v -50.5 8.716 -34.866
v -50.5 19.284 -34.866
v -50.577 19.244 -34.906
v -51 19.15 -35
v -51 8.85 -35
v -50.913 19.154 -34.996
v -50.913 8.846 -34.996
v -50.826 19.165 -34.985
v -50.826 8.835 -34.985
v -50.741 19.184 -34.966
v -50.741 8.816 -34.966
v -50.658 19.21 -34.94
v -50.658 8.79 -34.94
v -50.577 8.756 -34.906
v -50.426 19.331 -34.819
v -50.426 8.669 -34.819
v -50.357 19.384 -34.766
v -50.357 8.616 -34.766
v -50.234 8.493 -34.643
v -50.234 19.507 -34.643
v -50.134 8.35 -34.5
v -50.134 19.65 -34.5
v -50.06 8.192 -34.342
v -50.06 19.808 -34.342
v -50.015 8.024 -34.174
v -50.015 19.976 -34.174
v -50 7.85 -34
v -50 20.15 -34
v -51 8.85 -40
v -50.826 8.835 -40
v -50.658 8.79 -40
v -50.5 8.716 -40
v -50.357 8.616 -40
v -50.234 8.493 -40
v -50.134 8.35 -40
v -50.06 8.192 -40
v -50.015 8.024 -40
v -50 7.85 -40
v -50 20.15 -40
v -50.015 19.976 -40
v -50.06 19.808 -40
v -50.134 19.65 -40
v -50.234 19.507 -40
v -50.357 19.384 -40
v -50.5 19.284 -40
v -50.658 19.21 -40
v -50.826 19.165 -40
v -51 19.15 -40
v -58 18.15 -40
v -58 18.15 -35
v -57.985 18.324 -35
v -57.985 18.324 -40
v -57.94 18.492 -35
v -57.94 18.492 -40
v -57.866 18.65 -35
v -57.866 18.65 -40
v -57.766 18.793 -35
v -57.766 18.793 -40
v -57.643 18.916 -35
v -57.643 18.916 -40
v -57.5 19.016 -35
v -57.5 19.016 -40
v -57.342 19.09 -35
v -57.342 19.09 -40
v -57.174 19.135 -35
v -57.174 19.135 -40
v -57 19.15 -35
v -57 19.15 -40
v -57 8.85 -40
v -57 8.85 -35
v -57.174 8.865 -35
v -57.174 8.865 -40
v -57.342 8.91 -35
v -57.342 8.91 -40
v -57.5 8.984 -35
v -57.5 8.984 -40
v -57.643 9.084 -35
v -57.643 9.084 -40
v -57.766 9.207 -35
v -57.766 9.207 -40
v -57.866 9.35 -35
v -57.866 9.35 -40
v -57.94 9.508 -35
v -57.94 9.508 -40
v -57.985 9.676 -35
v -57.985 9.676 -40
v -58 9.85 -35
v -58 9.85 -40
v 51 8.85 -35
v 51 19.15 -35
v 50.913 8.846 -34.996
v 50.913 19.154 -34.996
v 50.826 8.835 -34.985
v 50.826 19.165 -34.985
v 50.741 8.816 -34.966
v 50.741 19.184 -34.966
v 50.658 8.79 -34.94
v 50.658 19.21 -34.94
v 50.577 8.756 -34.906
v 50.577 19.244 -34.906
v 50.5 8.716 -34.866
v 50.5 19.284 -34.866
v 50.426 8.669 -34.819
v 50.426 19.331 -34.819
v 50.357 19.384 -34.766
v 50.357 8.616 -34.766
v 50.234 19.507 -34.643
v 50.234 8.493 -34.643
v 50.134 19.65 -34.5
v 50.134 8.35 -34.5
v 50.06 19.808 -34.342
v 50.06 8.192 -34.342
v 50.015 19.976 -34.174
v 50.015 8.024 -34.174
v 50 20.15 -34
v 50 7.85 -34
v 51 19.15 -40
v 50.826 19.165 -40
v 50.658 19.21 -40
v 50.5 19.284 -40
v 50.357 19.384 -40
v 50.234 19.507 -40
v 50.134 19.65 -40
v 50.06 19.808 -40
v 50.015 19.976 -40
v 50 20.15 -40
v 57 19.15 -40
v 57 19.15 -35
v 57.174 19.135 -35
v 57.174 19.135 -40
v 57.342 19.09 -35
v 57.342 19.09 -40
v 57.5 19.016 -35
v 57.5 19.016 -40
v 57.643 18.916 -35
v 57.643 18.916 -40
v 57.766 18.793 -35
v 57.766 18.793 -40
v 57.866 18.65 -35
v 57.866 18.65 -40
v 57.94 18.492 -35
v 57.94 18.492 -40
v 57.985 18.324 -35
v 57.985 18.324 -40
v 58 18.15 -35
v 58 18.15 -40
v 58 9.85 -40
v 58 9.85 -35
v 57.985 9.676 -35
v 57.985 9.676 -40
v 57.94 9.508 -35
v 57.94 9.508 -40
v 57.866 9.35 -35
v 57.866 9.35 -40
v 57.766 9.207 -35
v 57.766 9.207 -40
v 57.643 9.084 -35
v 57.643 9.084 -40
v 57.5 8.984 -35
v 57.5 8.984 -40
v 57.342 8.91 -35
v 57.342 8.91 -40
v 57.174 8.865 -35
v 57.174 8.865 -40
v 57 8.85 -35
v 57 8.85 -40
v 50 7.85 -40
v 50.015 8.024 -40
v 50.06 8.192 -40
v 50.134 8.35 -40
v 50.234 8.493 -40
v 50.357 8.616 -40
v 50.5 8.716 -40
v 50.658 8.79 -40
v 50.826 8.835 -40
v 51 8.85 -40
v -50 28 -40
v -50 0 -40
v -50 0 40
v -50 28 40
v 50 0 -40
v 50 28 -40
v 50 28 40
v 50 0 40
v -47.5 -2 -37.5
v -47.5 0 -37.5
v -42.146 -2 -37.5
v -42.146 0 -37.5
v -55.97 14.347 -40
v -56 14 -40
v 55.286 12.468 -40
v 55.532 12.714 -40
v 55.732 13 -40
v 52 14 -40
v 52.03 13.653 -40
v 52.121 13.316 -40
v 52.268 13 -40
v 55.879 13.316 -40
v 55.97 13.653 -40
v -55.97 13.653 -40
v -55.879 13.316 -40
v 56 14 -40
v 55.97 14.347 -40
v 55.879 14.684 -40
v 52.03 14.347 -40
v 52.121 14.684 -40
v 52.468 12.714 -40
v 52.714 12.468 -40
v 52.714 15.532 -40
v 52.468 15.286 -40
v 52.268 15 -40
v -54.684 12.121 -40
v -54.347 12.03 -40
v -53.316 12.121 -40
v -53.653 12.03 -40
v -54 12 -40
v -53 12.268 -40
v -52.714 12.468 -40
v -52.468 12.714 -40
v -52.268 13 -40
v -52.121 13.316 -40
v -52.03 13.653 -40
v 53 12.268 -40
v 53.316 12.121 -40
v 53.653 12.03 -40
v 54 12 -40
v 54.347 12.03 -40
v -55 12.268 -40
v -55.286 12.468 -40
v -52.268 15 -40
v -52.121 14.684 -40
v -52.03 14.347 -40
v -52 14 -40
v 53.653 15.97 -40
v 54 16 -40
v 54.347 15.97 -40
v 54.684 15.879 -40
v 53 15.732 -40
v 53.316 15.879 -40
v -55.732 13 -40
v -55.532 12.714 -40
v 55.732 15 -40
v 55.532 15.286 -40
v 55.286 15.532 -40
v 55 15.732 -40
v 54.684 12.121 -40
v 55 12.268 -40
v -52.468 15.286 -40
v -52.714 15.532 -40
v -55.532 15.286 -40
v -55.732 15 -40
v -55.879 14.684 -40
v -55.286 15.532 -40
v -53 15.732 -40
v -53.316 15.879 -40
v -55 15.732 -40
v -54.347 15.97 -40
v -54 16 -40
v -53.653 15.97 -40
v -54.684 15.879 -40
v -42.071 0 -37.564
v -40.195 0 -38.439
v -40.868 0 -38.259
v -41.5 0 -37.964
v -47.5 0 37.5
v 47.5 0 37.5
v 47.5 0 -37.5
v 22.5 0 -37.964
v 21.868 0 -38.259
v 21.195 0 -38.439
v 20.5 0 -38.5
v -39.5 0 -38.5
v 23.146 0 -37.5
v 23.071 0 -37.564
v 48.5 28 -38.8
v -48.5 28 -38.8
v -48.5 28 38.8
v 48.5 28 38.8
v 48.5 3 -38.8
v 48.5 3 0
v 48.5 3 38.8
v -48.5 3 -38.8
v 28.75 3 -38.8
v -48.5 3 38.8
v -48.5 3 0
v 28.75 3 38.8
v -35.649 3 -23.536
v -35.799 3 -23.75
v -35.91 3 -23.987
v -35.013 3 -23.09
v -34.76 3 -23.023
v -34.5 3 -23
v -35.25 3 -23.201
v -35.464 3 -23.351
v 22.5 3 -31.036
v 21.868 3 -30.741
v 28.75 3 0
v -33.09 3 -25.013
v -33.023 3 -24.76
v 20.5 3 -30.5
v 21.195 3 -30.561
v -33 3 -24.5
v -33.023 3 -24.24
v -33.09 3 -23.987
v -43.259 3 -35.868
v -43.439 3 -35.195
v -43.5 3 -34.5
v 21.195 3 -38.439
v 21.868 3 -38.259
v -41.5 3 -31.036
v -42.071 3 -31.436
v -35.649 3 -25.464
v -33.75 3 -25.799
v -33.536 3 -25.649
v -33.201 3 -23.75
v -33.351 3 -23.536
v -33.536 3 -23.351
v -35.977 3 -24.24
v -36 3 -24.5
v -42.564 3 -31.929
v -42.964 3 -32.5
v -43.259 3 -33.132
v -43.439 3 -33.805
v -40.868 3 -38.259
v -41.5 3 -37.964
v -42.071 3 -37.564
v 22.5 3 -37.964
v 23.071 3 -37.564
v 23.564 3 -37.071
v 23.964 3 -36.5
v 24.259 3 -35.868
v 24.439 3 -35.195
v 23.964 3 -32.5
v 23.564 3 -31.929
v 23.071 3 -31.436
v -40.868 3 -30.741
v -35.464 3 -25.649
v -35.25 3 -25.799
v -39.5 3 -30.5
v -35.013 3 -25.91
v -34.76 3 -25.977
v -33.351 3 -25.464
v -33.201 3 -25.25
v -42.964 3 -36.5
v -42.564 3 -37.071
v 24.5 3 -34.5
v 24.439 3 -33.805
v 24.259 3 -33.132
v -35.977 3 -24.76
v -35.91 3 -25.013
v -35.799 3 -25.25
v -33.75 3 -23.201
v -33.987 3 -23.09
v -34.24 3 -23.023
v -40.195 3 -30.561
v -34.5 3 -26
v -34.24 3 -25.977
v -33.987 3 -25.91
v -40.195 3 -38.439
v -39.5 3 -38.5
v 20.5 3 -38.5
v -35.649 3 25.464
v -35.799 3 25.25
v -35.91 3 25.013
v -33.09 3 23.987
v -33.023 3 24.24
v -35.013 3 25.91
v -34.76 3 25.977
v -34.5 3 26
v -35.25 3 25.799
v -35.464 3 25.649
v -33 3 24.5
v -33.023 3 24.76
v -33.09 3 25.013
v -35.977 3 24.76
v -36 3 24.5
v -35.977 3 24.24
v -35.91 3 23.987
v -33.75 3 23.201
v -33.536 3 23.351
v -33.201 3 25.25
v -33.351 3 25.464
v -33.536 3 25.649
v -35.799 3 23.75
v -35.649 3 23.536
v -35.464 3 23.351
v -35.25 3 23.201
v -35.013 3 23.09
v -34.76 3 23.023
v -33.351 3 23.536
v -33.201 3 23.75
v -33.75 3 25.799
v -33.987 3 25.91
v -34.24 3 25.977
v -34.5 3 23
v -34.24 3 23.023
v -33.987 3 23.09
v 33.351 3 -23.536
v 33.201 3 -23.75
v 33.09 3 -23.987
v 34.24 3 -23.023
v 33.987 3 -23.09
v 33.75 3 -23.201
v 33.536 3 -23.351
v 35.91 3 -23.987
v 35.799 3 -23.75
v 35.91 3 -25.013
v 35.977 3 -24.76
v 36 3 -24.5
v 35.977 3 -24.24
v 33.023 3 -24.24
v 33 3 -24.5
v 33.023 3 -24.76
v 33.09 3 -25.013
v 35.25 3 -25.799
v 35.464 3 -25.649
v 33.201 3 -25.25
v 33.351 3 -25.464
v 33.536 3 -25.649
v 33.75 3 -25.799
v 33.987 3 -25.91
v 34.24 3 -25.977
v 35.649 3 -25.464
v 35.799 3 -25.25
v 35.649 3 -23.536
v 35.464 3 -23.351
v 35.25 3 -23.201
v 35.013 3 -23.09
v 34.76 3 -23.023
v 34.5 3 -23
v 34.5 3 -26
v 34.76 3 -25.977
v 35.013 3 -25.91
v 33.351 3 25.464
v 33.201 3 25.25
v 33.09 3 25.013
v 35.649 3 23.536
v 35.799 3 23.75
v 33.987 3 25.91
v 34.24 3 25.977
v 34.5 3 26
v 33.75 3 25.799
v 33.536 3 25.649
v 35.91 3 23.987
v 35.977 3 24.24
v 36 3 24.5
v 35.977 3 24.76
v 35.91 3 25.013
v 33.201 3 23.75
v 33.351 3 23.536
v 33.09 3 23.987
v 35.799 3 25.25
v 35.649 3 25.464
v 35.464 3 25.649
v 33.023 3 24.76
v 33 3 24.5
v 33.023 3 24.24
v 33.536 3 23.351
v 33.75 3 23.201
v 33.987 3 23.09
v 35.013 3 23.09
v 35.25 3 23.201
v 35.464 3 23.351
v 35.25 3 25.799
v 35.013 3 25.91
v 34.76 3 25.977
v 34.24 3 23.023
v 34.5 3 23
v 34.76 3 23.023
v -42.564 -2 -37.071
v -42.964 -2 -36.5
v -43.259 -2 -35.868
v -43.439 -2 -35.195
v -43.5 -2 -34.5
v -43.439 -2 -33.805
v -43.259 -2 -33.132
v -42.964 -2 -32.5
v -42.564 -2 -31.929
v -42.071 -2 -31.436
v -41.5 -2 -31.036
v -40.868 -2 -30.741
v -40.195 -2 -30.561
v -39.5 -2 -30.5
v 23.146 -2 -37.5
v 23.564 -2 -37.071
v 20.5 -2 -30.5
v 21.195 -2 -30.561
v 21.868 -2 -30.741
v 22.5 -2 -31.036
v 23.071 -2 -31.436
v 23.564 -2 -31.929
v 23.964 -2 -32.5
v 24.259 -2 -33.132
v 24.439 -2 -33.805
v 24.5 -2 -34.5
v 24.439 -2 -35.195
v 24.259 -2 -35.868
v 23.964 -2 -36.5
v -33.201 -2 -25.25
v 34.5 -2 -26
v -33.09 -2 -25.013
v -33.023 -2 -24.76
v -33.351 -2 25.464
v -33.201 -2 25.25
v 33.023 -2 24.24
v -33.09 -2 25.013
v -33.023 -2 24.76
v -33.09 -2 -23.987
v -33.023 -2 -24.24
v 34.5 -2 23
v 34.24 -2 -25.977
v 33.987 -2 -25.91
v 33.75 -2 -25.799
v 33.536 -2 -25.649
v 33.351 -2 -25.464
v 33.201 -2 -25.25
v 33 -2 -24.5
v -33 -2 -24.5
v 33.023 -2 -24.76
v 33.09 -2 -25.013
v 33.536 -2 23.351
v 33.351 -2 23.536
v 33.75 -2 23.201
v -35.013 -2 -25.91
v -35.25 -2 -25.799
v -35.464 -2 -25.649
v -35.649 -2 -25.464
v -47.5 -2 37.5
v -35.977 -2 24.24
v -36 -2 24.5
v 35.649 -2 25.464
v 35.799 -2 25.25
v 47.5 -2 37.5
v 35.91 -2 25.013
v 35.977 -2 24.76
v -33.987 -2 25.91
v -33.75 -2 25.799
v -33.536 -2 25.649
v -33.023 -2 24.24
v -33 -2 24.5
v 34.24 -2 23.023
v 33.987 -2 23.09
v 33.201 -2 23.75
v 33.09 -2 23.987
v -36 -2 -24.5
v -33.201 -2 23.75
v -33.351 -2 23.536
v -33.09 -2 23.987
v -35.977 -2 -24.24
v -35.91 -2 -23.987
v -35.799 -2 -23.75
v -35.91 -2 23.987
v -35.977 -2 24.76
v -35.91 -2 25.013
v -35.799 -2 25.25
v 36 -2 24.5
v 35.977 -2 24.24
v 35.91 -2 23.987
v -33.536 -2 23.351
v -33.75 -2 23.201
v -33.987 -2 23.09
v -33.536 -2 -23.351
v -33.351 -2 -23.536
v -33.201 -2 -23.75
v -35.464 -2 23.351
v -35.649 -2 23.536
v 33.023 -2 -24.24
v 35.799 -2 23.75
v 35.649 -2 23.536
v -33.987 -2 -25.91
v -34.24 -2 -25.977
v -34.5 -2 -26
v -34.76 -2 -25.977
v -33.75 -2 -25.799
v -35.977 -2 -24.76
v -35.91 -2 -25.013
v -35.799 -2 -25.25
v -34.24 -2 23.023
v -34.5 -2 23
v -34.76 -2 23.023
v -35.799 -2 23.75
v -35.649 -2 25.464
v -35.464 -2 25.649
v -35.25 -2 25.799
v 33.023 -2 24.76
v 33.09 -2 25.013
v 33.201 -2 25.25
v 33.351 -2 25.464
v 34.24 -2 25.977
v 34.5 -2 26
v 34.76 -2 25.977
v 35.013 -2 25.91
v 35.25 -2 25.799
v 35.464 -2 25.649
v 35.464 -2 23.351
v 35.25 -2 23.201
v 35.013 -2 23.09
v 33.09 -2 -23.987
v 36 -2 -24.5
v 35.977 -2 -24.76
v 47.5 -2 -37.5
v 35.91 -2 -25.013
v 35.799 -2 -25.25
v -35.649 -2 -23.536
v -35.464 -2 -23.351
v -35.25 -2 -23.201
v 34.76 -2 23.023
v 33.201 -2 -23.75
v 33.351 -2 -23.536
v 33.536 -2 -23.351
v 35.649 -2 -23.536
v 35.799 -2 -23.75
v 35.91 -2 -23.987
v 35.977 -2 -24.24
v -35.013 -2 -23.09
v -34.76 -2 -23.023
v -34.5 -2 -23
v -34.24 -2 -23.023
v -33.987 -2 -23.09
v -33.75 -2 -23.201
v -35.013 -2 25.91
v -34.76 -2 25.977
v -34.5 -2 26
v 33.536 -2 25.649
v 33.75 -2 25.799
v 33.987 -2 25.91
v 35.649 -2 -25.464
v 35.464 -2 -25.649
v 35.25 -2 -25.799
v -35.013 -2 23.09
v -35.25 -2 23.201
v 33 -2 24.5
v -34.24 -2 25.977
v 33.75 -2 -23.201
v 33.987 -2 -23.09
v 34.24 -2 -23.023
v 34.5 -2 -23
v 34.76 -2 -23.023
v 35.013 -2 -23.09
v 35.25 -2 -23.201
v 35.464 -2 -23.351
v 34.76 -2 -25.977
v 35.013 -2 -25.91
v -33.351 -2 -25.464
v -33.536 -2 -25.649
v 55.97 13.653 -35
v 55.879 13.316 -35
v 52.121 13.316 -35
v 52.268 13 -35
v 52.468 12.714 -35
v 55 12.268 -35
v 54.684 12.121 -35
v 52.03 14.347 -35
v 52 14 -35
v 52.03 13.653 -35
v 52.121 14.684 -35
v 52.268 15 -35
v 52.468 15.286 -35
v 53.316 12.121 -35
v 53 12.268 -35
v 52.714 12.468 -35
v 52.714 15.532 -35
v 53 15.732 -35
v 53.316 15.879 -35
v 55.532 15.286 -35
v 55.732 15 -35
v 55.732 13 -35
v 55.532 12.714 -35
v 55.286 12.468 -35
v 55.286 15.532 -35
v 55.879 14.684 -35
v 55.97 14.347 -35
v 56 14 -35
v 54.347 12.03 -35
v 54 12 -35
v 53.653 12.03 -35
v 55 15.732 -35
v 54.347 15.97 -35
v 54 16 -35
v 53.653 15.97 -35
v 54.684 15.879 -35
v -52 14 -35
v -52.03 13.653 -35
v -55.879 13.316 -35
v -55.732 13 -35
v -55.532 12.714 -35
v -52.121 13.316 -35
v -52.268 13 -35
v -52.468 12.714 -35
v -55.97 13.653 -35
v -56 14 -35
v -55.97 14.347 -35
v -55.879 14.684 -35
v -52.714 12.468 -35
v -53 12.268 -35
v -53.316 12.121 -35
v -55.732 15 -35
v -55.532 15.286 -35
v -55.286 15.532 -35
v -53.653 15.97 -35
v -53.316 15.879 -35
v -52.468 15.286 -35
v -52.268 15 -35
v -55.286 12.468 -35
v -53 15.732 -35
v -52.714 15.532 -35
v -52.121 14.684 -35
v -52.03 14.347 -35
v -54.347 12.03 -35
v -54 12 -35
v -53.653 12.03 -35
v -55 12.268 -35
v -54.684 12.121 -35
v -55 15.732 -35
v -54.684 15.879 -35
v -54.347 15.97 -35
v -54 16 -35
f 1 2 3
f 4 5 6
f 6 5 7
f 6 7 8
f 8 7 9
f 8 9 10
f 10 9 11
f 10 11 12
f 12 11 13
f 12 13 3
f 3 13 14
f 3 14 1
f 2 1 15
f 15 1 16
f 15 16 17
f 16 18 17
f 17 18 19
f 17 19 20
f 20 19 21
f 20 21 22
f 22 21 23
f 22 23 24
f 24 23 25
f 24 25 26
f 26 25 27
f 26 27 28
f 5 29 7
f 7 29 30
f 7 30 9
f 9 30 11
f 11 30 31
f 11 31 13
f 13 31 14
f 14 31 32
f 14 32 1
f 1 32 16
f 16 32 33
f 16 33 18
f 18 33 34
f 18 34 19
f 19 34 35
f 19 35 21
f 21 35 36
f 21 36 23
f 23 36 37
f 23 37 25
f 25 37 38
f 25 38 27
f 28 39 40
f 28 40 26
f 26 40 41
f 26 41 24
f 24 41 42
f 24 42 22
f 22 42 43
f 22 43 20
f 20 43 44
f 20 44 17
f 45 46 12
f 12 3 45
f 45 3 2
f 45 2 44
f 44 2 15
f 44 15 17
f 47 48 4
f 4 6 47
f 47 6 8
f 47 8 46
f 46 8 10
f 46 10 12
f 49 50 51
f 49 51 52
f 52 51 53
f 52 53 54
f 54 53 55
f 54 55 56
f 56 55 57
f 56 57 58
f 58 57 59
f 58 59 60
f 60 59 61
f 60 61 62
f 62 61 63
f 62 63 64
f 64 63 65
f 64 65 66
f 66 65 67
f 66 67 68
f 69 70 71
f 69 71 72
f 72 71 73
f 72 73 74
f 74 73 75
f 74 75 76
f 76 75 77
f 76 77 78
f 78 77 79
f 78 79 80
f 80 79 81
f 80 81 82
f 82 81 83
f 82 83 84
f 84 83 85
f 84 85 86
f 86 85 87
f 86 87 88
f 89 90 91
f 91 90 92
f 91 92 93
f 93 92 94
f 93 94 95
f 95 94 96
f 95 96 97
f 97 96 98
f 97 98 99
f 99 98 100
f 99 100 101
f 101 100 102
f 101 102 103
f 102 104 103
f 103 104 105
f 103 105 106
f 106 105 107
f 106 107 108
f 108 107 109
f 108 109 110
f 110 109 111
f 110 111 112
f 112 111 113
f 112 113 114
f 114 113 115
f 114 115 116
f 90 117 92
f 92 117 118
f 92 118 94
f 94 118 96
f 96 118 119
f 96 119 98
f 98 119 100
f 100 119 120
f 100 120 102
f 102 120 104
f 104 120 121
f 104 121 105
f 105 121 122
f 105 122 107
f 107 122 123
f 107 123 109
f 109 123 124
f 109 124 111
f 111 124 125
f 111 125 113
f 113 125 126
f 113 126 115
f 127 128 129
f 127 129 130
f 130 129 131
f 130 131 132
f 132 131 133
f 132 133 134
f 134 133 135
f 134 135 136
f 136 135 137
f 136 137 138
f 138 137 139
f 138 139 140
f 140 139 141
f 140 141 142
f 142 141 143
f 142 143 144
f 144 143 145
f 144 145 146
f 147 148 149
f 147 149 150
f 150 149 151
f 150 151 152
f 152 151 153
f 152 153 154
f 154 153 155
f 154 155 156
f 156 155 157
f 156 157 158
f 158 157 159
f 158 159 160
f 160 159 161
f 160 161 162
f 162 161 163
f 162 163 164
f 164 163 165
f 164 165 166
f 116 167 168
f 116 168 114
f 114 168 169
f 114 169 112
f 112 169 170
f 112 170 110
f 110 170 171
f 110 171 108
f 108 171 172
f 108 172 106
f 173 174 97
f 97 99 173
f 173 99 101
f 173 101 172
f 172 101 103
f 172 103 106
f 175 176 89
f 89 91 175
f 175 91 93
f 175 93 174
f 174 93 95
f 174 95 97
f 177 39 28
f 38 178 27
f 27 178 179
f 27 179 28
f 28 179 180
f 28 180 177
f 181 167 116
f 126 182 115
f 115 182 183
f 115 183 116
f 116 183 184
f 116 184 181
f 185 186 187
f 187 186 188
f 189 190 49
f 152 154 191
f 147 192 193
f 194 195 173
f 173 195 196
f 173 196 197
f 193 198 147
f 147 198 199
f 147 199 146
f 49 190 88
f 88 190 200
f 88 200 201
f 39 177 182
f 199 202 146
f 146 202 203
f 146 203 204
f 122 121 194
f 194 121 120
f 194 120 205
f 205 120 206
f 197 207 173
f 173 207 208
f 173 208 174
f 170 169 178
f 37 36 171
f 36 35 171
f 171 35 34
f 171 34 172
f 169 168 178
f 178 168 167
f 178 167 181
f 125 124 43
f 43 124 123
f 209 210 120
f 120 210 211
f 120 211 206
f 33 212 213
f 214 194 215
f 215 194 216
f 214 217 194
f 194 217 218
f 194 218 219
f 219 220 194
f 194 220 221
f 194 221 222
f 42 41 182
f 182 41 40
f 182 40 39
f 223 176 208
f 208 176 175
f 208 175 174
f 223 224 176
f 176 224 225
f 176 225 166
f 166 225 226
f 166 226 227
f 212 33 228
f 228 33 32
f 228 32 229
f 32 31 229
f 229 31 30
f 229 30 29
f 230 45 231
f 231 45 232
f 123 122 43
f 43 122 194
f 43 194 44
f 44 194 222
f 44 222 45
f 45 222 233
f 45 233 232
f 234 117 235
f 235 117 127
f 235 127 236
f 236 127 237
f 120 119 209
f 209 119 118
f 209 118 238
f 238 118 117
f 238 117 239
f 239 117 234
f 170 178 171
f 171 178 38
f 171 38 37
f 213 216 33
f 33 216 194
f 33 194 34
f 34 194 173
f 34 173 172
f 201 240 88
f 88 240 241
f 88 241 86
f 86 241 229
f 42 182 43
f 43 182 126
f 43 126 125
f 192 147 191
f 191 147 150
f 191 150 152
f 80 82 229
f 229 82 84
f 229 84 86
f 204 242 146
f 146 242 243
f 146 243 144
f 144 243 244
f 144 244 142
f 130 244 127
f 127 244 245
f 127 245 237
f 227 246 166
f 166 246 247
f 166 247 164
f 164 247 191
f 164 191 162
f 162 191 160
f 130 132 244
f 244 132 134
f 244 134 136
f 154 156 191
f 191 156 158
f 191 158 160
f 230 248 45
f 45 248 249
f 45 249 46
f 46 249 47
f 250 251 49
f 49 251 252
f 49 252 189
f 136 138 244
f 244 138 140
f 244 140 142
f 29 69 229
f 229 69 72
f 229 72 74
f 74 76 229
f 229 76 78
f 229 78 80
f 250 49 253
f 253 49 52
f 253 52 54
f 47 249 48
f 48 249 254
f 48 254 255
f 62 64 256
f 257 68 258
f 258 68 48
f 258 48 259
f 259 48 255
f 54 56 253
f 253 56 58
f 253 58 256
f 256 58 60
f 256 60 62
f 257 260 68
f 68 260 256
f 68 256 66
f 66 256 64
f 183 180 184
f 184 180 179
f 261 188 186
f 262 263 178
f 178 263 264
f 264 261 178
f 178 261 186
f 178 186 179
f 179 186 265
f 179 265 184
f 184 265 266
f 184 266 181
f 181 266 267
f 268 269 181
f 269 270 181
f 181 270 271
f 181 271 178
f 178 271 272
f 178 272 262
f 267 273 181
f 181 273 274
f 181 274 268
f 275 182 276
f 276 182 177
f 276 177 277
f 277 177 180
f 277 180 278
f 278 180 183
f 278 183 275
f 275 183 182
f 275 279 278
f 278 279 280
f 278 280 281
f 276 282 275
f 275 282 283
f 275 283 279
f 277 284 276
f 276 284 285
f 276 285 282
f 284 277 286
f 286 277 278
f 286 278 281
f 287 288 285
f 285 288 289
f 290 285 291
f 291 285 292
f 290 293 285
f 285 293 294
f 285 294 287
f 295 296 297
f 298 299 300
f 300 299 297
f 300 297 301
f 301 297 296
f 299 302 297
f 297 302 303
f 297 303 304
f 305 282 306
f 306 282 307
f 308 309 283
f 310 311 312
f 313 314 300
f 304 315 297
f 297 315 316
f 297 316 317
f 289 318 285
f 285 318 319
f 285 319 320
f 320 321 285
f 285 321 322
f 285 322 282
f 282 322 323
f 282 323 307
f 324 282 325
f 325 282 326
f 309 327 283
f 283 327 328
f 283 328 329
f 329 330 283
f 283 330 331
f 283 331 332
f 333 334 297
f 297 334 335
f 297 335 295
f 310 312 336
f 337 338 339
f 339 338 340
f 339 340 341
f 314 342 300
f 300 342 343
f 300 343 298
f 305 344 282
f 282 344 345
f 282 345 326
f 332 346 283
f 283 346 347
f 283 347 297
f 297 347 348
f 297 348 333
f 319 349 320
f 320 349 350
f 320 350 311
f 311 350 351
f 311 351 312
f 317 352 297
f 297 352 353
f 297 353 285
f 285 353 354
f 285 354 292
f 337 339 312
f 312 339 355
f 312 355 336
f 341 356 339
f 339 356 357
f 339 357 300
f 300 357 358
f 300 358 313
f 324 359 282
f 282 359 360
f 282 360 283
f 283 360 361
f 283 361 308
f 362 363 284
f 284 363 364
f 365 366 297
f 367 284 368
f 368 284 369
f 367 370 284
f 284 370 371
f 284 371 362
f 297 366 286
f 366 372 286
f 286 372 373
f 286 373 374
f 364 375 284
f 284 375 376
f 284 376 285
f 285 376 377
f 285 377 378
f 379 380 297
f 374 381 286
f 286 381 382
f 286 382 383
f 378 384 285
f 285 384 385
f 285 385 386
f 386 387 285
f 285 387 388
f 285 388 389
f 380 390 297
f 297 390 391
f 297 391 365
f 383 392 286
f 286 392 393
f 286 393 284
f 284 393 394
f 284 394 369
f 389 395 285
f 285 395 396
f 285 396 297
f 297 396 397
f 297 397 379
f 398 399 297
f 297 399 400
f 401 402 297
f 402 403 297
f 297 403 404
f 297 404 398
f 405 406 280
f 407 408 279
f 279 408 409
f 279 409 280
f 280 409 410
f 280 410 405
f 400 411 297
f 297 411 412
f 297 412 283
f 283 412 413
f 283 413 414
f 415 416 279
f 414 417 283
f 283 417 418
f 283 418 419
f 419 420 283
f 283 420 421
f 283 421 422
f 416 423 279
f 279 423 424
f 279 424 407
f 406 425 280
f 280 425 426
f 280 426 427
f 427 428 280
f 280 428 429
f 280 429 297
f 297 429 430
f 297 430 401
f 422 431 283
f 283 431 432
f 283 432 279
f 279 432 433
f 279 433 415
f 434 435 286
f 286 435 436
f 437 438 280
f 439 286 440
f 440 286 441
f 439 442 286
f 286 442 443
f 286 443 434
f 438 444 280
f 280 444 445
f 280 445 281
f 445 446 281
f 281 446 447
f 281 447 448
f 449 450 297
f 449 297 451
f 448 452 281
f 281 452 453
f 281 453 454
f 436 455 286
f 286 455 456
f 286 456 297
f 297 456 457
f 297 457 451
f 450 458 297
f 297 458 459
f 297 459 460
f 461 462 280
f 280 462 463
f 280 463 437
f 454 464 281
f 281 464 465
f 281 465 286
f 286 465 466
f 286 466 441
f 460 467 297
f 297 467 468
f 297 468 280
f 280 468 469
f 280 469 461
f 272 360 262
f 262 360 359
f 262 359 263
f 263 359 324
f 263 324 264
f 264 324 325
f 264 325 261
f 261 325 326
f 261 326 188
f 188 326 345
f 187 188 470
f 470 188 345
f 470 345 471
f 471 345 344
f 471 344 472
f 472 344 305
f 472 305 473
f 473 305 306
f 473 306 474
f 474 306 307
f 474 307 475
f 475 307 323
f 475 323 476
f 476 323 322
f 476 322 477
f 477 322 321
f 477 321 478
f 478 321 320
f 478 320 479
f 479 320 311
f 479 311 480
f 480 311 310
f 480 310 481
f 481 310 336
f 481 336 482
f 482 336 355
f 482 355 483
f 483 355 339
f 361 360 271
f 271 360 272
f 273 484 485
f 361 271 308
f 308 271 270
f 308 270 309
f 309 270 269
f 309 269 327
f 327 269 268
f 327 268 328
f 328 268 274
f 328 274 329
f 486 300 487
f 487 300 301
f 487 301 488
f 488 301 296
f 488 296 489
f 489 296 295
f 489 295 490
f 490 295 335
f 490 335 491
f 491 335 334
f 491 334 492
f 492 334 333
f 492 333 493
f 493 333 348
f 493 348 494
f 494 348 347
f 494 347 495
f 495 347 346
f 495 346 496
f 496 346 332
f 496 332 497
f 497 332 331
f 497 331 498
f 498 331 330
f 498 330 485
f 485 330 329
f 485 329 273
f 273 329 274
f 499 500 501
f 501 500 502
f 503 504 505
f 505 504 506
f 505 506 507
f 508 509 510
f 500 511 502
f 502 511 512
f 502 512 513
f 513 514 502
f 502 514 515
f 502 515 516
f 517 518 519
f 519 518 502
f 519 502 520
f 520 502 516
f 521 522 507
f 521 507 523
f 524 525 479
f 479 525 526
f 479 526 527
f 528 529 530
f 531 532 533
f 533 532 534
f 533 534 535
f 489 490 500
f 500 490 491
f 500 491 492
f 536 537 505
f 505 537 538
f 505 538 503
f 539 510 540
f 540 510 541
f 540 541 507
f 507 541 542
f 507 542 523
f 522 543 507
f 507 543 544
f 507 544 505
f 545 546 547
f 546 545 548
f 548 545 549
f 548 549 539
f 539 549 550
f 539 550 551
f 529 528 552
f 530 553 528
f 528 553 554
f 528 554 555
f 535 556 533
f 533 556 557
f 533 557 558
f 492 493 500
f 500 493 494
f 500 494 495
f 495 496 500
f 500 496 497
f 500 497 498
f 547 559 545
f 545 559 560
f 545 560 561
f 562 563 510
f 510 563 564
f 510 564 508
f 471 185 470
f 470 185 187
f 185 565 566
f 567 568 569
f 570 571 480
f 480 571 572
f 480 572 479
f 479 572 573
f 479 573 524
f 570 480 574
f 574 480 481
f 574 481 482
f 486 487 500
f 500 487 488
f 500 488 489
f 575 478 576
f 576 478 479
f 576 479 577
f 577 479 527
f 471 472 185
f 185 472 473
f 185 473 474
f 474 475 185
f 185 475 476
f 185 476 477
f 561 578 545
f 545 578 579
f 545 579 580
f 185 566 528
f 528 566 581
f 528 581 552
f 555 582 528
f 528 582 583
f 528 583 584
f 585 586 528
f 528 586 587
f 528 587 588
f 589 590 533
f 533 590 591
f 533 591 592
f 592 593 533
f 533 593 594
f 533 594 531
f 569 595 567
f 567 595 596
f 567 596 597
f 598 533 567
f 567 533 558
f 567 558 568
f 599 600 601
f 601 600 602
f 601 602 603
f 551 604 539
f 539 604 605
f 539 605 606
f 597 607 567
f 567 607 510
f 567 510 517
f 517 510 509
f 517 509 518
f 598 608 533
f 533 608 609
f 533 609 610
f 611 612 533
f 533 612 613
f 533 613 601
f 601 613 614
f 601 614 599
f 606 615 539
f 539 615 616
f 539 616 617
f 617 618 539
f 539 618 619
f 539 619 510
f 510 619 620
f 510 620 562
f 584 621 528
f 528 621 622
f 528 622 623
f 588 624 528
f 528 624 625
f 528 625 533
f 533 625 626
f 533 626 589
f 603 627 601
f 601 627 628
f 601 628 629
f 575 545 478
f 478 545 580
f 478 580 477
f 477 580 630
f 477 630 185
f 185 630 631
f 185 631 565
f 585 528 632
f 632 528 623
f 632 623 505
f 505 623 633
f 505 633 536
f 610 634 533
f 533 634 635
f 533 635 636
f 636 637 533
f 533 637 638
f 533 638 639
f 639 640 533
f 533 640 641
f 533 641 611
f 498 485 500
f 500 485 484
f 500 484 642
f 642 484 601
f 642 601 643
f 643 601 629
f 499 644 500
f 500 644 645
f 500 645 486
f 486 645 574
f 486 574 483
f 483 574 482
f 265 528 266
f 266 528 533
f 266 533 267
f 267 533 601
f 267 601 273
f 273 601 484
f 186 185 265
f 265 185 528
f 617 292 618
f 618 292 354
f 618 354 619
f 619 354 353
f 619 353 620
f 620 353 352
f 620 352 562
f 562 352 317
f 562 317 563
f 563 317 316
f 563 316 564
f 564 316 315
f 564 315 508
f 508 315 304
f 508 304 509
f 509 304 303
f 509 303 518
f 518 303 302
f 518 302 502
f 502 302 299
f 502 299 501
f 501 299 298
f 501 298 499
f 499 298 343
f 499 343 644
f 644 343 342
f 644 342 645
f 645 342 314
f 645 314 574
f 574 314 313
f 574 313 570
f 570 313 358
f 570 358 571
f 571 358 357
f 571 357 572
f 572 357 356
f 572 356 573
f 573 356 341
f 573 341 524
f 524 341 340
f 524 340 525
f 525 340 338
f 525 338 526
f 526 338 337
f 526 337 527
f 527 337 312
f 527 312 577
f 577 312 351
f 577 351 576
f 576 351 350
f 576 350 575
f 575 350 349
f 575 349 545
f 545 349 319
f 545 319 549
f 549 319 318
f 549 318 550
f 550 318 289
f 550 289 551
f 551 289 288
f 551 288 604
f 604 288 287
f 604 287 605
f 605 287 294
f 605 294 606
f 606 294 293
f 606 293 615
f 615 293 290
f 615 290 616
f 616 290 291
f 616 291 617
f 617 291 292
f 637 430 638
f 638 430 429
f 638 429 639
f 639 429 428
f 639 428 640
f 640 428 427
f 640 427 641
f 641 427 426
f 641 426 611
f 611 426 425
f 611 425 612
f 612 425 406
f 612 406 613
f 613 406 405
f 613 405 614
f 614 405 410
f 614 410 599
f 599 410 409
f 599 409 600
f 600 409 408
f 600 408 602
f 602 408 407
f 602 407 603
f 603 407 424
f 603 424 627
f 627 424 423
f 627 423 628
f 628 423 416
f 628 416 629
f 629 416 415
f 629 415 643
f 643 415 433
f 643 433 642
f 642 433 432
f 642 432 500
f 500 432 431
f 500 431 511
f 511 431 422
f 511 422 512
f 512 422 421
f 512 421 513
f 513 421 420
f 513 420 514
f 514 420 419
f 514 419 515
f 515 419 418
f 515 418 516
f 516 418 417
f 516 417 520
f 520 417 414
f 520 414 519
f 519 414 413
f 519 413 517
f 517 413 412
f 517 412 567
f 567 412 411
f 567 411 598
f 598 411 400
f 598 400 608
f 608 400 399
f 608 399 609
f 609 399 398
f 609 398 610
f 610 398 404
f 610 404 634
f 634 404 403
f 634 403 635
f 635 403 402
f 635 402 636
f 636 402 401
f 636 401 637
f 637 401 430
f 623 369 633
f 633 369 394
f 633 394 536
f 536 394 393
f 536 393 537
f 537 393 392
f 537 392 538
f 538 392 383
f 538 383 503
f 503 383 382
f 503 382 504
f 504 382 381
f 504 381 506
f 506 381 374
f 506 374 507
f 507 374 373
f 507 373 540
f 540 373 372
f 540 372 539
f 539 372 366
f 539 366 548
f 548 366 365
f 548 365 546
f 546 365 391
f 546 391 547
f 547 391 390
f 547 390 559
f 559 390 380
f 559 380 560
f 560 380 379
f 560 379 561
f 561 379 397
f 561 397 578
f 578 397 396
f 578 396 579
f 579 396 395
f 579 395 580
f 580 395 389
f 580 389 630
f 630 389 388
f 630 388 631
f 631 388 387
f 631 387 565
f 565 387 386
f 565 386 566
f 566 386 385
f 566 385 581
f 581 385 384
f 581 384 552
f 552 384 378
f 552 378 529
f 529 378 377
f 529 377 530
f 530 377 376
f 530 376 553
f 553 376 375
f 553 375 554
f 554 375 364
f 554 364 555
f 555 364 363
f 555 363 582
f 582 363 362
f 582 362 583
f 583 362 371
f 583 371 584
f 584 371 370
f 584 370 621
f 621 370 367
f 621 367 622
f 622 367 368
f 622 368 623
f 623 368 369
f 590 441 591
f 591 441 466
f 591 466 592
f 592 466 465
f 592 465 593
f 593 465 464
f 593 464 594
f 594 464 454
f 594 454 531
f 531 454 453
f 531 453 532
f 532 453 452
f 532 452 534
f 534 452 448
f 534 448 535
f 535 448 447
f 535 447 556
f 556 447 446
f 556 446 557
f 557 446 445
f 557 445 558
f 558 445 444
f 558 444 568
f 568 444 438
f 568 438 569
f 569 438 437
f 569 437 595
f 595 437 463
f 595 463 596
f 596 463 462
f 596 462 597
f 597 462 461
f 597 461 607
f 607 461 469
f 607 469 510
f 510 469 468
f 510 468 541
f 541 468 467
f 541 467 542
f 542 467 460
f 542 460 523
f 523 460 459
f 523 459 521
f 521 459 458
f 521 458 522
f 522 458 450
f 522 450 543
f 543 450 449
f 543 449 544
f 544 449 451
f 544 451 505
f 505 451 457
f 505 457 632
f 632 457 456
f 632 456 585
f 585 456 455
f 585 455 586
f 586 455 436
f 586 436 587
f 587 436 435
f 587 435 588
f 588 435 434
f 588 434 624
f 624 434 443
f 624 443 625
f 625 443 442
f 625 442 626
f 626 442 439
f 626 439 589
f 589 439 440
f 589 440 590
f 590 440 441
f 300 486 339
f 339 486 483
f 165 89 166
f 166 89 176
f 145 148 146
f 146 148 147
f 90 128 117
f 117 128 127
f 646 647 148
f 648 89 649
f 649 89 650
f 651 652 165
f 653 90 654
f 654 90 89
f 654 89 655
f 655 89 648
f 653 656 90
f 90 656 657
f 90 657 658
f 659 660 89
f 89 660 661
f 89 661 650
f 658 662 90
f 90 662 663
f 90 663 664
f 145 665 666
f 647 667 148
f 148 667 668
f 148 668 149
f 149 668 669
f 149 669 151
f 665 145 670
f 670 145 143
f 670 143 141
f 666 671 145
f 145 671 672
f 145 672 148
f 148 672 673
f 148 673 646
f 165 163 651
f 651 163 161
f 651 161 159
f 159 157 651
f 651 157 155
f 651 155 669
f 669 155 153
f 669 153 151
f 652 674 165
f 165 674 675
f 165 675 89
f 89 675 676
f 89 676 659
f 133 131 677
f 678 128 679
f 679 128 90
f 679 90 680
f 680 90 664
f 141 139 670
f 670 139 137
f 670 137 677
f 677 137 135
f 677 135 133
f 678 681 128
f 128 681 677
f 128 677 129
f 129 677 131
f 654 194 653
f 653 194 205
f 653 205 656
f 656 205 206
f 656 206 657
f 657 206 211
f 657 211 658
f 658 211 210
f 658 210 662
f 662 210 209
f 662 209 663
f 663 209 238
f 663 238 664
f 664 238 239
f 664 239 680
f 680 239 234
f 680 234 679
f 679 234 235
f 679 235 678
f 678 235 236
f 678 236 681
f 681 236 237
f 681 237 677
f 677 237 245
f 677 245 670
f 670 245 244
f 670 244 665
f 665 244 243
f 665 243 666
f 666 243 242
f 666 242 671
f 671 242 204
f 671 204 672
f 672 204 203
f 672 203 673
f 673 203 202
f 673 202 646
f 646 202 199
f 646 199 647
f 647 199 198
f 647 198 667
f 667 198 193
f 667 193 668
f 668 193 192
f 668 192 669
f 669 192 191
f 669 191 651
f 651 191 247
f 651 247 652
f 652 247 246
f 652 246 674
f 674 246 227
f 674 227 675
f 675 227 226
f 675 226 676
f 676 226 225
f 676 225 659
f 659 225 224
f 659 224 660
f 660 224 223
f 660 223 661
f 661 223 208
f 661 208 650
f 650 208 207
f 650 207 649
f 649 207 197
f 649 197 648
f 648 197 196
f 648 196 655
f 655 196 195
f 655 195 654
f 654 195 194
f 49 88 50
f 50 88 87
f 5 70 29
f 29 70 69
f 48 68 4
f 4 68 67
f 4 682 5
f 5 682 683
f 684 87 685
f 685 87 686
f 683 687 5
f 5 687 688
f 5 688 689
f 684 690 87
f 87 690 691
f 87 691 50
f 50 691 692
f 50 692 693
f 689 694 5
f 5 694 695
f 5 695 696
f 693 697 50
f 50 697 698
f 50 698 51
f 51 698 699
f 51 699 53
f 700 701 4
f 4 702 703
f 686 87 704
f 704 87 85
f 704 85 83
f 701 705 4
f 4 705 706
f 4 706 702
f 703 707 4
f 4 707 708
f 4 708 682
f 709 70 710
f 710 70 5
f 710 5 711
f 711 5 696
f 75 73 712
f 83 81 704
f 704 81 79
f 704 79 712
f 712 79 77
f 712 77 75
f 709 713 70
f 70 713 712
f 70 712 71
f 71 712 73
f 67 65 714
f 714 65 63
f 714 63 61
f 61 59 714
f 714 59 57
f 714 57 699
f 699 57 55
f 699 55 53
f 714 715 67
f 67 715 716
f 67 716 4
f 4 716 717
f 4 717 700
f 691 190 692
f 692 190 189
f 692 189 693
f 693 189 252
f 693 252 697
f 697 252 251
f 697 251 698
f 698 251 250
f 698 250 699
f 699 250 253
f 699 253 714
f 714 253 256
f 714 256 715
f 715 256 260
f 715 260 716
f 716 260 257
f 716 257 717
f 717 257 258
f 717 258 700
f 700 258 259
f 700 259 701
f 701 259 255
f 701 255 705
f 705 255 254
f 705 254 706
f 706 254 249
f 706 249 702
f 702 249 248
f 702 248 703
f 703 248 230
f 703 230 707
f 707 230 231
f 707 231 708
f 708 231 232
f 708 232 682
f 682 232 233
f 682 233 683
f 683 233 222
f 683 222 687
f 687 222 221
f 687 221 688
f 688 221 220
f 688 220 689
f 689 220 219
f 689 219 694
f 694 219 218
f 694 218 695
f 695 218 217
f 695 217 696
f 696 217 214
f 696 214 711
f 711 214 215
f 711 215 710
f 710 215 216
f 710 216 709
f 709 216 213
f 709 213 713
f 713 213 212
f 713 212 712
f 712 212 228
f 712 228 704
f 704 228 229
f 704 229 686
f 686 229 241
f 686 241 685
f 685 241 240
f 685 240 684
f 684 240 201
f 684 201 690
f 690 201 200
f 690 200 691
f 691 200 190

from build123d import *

# Parameters (mm, degrees)
SKETCH1_W           = 100
SKETCH1_H           = 80
BOSS_EXTRUDE1_DEPTH = 3
SKETCH2_W           = 100
SKETCH2_H           = 80
SKETCH2_W_2         = 97
SKETCH2_H_2         = 77.6
BOSS_EXTRUDE2_DEPTH = 25
SKETCH3_R           = 1.5
CUT_EXTRUDE1_DEPTH  = 40
SKETCH4_W           = 95
SKETCH4_H           = 75
BOSS_EXTRUDE3_DEPTH = 5
SKETCH3_2_R         = 1.5
CUT_EXTRUDE2_DEPTH  = 12
SKETCH6_W           = 8
SKETCH6_H           = 10.3
SKETCH6_R           = 2
BOSS_EXTRUDE4_DEPTH = 5
FILLET1_R           = 1
FILLET2_R           = 1
FILLET3_R           = 1
FILLET4_R           = 1
FILLET5_R           = 1
FILLET6_R           = 1
FILLET7_R           = 1
FILLET8_R           = 1
FILLET9_R           = 1
FILLET10_R          = 1


with BuildPart() as part:
    # Sketch1 → Boss-Extrude1 (new body)
    with BuildSketch(Plane(origin=(0, 0, 0), x_dir=(1, 0, 0), z_dir=(0, 1, 0))):
        Rectangle(SKETCH1_W, SKETCH1_H)
    extrude(amount=BOSS_EXTRUDE1_DEPTH)

    # Sketch2 → Boss-Extrude2 (add)
    with BuildSketch(Plane(origin=(0, 3, 0), x_dir=(1, 0, 0), z_dir=(0, 1, 0))):
        Rectangle(SKETCH2_W, SKETCH2_H)
        Rectangle(SKETCH2_W_2, SKETCH2_H_2, mode=Mode.SUBTRACT)
    extrude(amount=BOSS_EXTRUDE2_DEPTH)

    # Sketch3 → Cut-Extrude1 (cut)
    with BuildSketch(Plane(origin=(0, 3, 0), x_dir=(1, 0, 0), z_dir=(0, 1, 0))):
        with Locations((-34.5, 24.5)):
            Circle(SKETCH3_R)
        with Locations((34.5, 24.5)):
            Circle(SKETCH3_R)
        with Locations((-34.5, -24.5)):
            Circle(SKETCH3_R)
        with Locations((34.5, -24.5)):
            Circle(SKETCH3_R)
        with BuildLine():
            Line((-39.5, 38.5), (20.5, 38.5))
            ThreePointArc((20.5, 38.5), (24.5, 34.5), (20.5, 30.5))
            Line((20.5, 30.5), (-39.5, 30.5))
            ThreePointArc((-39.5, 30.5), (-43.5, 34.5), (-39.5, 38.5))
        make_face()
    extrude(amount=-CUT_EXTRUDE1_DEPTH, mode=Mode.SUBTRACT)

    # Sketch4 → Boss-Extrude3 (add)
    with BuildSketch(Plane(origin=(0, 3, 0), x_dir=(1, 0, 0), z_dir=(0, 1, 0))):
        Rectangle(SKETCH4_W, SKETCH4_H)
    extrude(amount=-BOSS_EXTRUDE3_DEPTH)

    # Sketch3<2> → Cut-Extrude2 (cut)
    with BuildSketch(Plane(origin=(0, 3, 0), x_dir=(1, 0, 0), z_dir=(0, 1, 0))):
        with Locations((-34.5, 24.5)):
            Circle(SKETCH3_2_R)
        with Locations((34.5, 24.5)):
            Circle(SKETCH3_2_R)
        with Locations((-34.5, -24.5)):
            Circle(SKETCH3_2_R)
        with Locations((34.5, -24.5)):
            Circle(SKETCH3_2_R)
        with BuildLine():
            Line((-39.5, 38.5), (20.5, 38.5))
            ThreePointArc((20.5, 38.5), (24.5, 34.5), (20.5, 30.5))
            Line((20.5, 30.5), (-39.5, 30.5))
            ThreePointArc((-39.5, 30.5), (-43.5, 34.5), (-39.5, 38.5))
        make_face()
    extrude(amount=-CUT_EXTRUDE2_DEPTH, mode=Mode.SUBTRACT)

    # Sketch6 → Boss-Extrude4 (add)
    # profile 1 of 2: a face of its own
    with BuildSketch(Plane(origin=(0, 0, -40), x_dir=(-1, 0, 0), z_dir=(0, 0, -1))):
        with Locations((-54, 14)):
            Rectangle(SKETCH6_W, SKETCH6_H)
        with Locations((-54, 14)):
            Circle(SKETCH6_R, mode=Mode.SUBTRACT)
    # profile 2 of 2: a face of its own
    with BuildSketch(Plane(origin=(0, 0, -40), x_dir=(-1, 0, 0), z_dir=(0, 0, -1))):
        with Locations((54, 14)):
            Rectangle(SKETCH6_W, SKETCH6_H)
        with Locations((54, 14)):
            Circle(SKETCH6_R, mode=Mode.SUBTRACT)
    extrude(amount=-BOSS_EXTRUDE4_DEPTH)

    # Fillet1
    fillet1_edges = [part.edges().sort_by_distance(p)[0] for p in [
        (50, 8.85, -37.5),
    ]]
    fillet(fillet1_edges, radius=FILLET1_R)

    # Fillet2
    fillet2_edges = [part.edges().sort_by_distance(p)[0] for p in [
        (58, 8.85, -37.5),
    ]]
    fillet(fillet2_edges, radius=FILLET2_R)

    # Fillet3
    fillet3_edges = [part.edges().sort_by_distance(p)[0] for p in [
        (58, 19.15, -37.5),
    ]]
    fillet(fillet3_edges, radius=FILLET3_R)

    # Fillet4
    fillet4_edges = [part.edges().sort_by_distance(p)[0] for p in [
        (50, 19.15, -37.5),
    ]]
    fillet(fillet4_edges, radius=FILLET4_R)

    # Fillet5
    fillet5_edges = [part.edges().sort_by_distance(p)[0] for p in [
        (50, 14, -35),
    ]]
    fillet(fillet5_edges, radius=FILLET5_R)

    # Fillet6
    fillet6_edges = [part.edges().sort_by_distance(p)[0] for p in [
        (-58, 8.85, -37.5),
    ]]
    fillet(fillet6_edges, radius=FILLET6_R)

    # Fillet7
    fillet7_edges = [part.edges().sort_by_distance(p)[0] for p in [
        (-58, 19.15, -37.5),
    ]]
    fillet(fillet7_edges, radius=FILLET7_R)

    # Fillet8
    fillet8_edges = [part.edges().sort_by_distance(p)[0] for p in [
        (-50, 19.15, -37.5),
    ]]
    fillet(fillet8_edges, radius=FILLET8_R)

    # Fillet9
    fillet9_edges = [part.edges().sort_by_distance(p)[0] for p in [
        (-50, 8.85, -37.5),
    ]]
    fillet(fillet9_edges, radius=FILLET9_R)

    # Fillet10
    fillet10_edges = [part.edges().sort_by_distance(p)[0] for p in [
        (-50, 14, -35),
    ]]
    fillet(fillet10_edges, radius=FILLET10_R)


solid = part.part
